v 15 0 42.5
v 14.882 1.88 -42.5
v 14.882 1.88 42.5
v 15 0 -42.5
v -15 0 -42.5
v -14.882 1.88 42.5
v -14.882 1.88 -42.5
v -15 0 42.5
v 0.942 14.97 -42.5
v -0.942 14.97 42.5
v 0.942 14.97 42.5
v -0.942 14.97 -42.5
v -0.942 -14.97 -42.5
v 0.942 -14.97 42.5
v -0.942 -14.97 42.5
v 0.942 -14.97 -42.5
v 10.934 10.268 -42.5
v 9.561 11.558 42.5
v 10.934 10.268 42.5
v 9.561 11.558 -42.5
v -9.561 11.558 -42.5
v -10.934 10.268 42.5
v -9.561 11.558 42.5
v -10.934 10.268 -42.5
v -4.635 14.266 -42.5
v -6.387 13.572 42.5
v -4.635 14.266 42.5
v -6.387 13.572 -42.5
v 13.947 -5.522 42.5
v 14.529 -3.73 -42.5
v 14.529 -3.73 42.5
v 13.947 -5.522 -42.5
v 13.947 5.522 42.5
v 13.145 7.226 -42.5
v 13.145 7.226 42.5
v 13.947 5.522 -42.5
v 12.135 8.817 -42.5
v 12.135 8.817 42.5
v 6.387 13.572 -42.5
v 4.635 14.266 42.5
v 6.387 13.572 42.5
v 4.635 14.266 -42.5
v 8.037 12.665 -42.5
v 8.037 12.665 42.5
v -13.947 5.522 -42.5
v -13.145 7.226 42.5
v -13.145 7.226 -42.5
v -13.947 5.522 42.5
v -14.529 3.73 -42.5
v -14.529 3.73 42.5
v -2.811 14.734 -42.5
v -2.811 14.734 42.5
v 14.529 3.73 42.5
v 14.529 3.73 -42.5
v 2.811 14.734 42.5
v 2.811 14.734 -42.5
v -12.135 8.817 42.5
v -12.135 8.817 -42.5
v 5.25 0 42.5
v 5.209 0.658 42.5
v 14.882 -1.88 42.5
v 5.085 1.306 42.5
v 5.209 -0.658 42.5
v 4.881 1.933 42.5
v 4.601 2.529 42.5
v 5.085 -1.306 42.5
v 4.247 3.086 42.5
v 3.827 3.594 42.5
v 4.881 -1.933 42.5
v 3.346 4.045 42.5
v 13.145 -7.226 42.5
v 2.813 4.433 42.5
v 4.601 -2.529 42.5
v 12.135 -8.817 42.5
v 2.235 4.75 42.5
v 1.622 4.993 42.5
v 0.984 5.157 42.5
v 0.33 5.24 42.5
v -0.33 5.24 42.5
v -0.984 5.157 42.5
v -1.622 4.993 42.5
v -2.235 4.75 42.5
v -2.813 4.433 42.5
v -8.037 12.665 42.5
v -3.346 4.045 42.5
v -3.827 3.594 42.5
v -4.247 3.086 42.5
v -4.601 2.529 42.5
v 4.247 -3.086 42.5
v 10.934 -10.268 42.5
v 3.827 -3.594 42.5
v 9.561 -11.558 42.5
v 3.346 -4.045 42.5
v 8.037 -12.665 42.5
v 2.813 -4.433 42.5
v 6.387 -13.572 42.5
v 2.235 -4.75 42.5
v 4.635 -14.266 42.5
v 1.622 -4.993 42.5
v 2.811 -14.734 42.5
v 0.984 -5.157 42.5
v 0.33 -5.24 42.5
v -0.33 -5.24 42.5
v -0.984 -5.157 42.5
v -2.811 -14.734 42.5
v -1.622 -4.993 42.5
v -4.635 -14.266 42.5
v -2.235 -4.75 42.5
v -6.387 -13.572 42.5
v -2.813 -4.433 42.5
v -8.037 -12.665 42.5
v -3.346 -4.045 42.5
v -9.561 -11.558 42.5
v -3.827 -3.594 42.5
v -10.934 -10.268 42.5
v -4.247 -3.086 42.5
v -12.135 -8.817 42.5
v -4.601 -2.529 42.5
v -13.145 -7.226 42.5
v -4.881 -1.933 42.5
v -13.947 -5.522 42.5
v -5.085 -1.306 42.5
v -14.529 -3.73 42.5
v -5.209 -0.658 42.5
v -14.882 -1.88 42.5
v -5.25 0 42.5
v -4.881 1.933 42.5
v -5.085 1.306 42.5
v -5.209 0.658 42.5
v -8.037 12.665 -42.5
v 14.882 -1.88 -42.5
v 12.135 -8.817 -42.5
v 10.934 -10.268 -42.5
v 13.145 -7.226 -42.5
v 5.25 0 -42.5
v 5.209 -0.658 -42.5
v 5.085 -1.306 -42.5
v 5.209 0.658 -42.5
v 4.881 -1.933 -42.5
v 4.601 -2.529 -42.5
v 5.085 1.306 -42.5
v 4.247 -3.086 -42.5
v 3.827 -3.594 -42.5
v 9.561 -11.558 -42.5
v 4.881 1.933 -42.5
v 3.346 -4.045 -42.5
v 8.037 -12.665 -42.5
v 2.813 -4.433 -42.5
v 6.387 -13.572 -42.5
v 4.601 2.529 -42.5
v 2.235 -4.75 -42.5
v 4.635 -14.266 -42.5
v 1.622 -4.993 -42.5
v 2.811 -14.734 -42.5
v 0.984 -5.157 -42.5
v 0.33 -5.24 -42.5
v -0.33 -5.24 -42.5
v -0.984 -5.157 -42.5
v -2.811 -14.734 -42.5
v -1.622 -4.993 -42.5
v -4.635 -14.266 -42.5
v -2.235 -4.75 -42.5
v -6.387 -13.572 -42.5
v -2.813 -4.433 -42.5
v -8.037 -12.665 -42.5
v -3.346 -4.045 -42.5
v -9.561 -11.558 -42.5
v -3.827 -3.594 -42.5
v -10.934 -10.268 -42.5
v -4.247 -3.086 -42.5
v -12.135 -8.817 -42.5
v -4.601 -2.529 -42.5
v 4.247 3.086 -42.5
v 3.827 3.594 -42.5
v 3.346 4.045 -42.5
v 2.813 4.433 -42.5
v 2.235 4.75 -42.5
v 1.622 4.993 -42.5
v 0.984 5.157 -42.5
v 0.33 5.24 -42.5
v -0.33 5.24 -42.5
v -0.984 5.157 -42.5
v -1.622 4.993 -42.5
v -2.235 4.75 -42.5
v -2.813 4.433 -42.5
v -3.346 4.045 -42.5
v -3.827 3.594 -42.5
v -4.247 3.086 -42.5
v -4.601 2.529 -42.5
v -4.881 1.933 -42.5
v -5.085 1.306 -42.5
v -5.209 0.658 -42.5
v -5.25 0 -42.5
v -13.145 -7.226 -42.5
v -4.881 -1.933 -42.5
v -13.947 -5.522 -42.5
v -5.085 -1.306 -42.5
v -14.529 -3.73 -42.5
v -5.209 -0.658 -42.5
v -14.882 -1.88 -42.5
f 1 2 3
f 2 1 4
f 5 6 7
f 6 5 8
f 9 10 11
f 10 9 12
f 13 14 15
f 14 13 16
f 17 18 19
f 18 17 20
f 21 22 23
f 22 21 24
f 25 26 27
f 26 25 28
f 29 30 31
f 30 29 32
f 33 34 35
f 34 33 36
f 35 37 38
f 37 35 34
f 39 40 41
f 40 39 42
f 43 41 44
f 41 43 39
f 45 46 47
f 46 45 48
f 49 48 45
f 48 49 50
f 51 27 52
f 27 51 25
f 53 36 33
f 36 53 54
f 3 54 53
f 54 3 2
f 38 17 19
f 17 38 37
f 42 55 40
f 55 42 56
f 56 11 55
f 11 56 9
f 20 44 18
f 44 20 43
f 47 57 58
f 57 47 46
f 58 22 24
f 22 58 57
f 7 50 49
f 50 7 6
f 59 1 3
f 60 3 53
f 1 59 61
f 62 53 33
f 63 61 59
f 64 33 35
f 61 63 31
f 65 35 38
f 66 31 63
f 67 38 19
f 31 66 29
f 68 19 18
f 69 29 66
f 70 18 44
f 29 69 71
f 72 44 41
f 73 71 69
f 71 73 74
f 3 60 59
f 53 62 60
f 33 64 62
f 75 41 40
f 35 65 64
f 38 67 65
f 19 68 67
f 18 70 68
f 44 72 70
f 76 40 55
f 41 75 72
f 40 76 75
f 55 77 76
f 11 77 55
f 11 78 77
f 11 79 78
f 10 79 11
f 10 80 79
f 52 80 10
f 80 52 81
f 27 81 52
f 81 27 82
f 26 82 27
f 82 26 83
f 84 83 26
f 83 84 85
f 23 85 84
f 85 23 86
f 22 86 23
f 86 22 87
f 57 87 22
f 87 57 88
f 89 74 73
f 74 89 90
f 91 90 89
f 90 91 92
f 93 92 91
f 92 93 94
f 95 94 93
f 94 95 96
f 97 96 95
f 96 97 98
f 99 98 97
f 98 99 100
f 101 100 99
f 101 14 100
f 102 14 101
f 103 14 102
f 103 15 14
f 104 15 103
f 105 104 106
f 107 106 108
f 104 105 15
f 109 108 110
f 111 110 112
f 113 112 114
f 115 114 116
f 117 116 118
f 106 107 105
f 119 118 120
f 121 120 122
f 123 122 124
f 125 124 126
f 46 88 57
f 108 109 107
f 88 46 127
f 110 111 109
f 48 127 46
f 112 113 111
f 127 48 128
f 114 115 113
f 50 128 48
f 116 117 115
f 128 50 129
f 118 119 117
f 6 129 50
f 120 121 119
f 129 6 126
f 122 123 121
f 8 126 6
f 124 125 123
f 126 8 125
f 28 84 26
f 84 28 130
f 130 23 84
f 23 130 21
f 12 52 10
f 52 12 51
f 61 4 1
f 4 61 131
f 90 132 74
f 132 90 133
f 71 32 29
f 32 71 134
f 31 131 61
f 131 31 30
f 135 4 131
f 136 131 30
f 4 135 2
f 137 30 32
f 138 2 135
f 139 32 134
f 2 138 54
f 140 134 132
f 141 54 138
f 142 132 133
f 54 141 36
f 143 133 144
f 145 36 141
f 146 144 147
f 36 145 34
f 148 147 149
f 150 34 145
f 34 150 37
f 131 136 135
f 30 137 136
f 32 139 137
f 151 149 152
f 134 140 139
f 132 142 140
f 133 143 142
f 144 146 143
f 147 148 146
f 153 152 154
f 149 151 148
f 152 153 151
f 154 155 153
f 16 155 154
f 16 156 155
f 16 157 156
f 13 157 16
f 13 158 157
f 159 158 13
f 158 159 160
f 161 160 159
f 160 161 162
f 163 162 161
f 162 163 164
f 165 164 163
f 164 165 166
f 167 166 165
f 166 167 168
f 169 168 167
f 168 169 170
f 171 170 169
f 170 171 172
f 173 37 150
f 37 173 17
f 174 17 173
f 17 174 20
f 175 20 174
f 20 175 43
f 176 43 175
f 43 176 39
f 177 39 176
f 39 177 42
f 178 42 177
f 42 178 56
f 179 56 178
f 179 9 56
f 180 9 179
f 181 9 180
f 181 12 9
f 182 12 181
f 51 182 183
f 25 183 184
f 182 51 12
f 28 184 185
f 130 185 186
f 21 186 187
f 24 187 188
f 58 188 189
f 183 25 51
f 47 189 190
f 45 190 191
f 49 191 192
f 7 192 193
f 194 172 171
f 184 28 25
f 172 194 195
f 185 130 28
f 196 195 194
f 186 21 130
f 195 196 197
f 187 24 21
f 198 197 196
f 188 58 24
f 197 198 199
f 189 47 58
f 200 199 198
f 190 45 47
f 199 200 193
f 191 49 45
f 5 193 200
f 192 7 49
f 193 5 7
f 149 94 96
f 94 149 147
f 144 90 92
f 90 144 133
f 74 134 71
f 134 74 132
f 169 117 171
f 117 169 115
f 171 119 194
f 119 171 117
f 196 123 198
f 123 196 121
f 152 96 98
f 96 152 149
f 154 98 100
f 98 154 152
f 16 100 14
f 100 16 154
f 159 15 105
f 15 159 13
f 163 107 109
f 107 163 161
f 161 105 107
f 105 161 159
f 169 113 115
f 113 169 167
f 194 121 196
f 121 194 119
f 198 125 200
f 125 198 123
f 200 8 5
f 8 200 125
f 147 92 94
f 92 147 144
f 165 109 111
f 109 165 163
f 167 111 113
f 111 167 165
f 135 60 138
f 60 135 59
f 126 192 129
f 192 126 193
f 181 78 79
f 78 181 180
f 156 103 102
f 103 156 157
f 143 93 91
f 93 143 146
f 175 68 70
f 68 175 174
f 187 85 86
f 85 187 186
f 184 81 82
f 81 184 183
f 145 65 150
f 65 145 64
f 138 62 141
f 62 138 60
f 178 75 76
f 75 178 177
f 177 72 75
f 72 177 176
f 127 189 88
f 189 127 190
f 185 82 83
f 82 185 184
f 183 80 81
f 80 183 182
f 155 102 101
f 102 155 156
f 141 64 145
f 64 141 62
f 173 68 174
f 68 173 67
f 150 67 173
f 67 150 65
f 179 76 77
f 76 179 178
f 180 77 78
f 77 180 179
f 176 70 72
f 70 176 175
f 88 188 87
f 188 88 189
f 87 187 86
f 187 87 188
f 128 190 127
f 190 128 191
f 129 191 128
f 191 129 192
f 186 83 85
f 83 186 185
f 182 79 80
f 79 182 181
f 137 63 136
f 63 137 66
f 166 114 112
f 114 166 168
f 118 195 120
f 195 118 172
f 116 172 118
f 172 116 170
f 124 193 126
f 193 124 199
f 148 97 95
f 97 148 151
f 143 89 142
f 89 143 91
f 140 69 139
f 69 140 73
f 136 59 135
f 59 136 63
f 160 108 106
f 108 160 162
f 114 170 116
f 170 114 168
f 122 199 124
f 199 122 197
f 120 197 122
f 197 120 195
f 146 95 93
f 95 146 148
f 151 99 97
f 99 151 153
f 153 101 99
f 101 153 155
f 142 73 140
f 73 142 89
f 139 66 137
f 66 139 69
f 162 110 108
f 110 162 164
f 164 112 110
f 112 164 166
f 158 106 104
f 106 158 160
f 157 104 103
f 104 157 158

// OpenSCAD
$fn = 50;


difference() {
	union() {
		translate(v = [0, 0, -42.5000000000]) {
			cylinder(h = 85, r = 15.0000000000);
		}
	}
	union() {
		translate(v = [0, 0, -100.0000000000]) {
			cylinder(h = 200, r = 5.2500000000);
		}
	}
}
